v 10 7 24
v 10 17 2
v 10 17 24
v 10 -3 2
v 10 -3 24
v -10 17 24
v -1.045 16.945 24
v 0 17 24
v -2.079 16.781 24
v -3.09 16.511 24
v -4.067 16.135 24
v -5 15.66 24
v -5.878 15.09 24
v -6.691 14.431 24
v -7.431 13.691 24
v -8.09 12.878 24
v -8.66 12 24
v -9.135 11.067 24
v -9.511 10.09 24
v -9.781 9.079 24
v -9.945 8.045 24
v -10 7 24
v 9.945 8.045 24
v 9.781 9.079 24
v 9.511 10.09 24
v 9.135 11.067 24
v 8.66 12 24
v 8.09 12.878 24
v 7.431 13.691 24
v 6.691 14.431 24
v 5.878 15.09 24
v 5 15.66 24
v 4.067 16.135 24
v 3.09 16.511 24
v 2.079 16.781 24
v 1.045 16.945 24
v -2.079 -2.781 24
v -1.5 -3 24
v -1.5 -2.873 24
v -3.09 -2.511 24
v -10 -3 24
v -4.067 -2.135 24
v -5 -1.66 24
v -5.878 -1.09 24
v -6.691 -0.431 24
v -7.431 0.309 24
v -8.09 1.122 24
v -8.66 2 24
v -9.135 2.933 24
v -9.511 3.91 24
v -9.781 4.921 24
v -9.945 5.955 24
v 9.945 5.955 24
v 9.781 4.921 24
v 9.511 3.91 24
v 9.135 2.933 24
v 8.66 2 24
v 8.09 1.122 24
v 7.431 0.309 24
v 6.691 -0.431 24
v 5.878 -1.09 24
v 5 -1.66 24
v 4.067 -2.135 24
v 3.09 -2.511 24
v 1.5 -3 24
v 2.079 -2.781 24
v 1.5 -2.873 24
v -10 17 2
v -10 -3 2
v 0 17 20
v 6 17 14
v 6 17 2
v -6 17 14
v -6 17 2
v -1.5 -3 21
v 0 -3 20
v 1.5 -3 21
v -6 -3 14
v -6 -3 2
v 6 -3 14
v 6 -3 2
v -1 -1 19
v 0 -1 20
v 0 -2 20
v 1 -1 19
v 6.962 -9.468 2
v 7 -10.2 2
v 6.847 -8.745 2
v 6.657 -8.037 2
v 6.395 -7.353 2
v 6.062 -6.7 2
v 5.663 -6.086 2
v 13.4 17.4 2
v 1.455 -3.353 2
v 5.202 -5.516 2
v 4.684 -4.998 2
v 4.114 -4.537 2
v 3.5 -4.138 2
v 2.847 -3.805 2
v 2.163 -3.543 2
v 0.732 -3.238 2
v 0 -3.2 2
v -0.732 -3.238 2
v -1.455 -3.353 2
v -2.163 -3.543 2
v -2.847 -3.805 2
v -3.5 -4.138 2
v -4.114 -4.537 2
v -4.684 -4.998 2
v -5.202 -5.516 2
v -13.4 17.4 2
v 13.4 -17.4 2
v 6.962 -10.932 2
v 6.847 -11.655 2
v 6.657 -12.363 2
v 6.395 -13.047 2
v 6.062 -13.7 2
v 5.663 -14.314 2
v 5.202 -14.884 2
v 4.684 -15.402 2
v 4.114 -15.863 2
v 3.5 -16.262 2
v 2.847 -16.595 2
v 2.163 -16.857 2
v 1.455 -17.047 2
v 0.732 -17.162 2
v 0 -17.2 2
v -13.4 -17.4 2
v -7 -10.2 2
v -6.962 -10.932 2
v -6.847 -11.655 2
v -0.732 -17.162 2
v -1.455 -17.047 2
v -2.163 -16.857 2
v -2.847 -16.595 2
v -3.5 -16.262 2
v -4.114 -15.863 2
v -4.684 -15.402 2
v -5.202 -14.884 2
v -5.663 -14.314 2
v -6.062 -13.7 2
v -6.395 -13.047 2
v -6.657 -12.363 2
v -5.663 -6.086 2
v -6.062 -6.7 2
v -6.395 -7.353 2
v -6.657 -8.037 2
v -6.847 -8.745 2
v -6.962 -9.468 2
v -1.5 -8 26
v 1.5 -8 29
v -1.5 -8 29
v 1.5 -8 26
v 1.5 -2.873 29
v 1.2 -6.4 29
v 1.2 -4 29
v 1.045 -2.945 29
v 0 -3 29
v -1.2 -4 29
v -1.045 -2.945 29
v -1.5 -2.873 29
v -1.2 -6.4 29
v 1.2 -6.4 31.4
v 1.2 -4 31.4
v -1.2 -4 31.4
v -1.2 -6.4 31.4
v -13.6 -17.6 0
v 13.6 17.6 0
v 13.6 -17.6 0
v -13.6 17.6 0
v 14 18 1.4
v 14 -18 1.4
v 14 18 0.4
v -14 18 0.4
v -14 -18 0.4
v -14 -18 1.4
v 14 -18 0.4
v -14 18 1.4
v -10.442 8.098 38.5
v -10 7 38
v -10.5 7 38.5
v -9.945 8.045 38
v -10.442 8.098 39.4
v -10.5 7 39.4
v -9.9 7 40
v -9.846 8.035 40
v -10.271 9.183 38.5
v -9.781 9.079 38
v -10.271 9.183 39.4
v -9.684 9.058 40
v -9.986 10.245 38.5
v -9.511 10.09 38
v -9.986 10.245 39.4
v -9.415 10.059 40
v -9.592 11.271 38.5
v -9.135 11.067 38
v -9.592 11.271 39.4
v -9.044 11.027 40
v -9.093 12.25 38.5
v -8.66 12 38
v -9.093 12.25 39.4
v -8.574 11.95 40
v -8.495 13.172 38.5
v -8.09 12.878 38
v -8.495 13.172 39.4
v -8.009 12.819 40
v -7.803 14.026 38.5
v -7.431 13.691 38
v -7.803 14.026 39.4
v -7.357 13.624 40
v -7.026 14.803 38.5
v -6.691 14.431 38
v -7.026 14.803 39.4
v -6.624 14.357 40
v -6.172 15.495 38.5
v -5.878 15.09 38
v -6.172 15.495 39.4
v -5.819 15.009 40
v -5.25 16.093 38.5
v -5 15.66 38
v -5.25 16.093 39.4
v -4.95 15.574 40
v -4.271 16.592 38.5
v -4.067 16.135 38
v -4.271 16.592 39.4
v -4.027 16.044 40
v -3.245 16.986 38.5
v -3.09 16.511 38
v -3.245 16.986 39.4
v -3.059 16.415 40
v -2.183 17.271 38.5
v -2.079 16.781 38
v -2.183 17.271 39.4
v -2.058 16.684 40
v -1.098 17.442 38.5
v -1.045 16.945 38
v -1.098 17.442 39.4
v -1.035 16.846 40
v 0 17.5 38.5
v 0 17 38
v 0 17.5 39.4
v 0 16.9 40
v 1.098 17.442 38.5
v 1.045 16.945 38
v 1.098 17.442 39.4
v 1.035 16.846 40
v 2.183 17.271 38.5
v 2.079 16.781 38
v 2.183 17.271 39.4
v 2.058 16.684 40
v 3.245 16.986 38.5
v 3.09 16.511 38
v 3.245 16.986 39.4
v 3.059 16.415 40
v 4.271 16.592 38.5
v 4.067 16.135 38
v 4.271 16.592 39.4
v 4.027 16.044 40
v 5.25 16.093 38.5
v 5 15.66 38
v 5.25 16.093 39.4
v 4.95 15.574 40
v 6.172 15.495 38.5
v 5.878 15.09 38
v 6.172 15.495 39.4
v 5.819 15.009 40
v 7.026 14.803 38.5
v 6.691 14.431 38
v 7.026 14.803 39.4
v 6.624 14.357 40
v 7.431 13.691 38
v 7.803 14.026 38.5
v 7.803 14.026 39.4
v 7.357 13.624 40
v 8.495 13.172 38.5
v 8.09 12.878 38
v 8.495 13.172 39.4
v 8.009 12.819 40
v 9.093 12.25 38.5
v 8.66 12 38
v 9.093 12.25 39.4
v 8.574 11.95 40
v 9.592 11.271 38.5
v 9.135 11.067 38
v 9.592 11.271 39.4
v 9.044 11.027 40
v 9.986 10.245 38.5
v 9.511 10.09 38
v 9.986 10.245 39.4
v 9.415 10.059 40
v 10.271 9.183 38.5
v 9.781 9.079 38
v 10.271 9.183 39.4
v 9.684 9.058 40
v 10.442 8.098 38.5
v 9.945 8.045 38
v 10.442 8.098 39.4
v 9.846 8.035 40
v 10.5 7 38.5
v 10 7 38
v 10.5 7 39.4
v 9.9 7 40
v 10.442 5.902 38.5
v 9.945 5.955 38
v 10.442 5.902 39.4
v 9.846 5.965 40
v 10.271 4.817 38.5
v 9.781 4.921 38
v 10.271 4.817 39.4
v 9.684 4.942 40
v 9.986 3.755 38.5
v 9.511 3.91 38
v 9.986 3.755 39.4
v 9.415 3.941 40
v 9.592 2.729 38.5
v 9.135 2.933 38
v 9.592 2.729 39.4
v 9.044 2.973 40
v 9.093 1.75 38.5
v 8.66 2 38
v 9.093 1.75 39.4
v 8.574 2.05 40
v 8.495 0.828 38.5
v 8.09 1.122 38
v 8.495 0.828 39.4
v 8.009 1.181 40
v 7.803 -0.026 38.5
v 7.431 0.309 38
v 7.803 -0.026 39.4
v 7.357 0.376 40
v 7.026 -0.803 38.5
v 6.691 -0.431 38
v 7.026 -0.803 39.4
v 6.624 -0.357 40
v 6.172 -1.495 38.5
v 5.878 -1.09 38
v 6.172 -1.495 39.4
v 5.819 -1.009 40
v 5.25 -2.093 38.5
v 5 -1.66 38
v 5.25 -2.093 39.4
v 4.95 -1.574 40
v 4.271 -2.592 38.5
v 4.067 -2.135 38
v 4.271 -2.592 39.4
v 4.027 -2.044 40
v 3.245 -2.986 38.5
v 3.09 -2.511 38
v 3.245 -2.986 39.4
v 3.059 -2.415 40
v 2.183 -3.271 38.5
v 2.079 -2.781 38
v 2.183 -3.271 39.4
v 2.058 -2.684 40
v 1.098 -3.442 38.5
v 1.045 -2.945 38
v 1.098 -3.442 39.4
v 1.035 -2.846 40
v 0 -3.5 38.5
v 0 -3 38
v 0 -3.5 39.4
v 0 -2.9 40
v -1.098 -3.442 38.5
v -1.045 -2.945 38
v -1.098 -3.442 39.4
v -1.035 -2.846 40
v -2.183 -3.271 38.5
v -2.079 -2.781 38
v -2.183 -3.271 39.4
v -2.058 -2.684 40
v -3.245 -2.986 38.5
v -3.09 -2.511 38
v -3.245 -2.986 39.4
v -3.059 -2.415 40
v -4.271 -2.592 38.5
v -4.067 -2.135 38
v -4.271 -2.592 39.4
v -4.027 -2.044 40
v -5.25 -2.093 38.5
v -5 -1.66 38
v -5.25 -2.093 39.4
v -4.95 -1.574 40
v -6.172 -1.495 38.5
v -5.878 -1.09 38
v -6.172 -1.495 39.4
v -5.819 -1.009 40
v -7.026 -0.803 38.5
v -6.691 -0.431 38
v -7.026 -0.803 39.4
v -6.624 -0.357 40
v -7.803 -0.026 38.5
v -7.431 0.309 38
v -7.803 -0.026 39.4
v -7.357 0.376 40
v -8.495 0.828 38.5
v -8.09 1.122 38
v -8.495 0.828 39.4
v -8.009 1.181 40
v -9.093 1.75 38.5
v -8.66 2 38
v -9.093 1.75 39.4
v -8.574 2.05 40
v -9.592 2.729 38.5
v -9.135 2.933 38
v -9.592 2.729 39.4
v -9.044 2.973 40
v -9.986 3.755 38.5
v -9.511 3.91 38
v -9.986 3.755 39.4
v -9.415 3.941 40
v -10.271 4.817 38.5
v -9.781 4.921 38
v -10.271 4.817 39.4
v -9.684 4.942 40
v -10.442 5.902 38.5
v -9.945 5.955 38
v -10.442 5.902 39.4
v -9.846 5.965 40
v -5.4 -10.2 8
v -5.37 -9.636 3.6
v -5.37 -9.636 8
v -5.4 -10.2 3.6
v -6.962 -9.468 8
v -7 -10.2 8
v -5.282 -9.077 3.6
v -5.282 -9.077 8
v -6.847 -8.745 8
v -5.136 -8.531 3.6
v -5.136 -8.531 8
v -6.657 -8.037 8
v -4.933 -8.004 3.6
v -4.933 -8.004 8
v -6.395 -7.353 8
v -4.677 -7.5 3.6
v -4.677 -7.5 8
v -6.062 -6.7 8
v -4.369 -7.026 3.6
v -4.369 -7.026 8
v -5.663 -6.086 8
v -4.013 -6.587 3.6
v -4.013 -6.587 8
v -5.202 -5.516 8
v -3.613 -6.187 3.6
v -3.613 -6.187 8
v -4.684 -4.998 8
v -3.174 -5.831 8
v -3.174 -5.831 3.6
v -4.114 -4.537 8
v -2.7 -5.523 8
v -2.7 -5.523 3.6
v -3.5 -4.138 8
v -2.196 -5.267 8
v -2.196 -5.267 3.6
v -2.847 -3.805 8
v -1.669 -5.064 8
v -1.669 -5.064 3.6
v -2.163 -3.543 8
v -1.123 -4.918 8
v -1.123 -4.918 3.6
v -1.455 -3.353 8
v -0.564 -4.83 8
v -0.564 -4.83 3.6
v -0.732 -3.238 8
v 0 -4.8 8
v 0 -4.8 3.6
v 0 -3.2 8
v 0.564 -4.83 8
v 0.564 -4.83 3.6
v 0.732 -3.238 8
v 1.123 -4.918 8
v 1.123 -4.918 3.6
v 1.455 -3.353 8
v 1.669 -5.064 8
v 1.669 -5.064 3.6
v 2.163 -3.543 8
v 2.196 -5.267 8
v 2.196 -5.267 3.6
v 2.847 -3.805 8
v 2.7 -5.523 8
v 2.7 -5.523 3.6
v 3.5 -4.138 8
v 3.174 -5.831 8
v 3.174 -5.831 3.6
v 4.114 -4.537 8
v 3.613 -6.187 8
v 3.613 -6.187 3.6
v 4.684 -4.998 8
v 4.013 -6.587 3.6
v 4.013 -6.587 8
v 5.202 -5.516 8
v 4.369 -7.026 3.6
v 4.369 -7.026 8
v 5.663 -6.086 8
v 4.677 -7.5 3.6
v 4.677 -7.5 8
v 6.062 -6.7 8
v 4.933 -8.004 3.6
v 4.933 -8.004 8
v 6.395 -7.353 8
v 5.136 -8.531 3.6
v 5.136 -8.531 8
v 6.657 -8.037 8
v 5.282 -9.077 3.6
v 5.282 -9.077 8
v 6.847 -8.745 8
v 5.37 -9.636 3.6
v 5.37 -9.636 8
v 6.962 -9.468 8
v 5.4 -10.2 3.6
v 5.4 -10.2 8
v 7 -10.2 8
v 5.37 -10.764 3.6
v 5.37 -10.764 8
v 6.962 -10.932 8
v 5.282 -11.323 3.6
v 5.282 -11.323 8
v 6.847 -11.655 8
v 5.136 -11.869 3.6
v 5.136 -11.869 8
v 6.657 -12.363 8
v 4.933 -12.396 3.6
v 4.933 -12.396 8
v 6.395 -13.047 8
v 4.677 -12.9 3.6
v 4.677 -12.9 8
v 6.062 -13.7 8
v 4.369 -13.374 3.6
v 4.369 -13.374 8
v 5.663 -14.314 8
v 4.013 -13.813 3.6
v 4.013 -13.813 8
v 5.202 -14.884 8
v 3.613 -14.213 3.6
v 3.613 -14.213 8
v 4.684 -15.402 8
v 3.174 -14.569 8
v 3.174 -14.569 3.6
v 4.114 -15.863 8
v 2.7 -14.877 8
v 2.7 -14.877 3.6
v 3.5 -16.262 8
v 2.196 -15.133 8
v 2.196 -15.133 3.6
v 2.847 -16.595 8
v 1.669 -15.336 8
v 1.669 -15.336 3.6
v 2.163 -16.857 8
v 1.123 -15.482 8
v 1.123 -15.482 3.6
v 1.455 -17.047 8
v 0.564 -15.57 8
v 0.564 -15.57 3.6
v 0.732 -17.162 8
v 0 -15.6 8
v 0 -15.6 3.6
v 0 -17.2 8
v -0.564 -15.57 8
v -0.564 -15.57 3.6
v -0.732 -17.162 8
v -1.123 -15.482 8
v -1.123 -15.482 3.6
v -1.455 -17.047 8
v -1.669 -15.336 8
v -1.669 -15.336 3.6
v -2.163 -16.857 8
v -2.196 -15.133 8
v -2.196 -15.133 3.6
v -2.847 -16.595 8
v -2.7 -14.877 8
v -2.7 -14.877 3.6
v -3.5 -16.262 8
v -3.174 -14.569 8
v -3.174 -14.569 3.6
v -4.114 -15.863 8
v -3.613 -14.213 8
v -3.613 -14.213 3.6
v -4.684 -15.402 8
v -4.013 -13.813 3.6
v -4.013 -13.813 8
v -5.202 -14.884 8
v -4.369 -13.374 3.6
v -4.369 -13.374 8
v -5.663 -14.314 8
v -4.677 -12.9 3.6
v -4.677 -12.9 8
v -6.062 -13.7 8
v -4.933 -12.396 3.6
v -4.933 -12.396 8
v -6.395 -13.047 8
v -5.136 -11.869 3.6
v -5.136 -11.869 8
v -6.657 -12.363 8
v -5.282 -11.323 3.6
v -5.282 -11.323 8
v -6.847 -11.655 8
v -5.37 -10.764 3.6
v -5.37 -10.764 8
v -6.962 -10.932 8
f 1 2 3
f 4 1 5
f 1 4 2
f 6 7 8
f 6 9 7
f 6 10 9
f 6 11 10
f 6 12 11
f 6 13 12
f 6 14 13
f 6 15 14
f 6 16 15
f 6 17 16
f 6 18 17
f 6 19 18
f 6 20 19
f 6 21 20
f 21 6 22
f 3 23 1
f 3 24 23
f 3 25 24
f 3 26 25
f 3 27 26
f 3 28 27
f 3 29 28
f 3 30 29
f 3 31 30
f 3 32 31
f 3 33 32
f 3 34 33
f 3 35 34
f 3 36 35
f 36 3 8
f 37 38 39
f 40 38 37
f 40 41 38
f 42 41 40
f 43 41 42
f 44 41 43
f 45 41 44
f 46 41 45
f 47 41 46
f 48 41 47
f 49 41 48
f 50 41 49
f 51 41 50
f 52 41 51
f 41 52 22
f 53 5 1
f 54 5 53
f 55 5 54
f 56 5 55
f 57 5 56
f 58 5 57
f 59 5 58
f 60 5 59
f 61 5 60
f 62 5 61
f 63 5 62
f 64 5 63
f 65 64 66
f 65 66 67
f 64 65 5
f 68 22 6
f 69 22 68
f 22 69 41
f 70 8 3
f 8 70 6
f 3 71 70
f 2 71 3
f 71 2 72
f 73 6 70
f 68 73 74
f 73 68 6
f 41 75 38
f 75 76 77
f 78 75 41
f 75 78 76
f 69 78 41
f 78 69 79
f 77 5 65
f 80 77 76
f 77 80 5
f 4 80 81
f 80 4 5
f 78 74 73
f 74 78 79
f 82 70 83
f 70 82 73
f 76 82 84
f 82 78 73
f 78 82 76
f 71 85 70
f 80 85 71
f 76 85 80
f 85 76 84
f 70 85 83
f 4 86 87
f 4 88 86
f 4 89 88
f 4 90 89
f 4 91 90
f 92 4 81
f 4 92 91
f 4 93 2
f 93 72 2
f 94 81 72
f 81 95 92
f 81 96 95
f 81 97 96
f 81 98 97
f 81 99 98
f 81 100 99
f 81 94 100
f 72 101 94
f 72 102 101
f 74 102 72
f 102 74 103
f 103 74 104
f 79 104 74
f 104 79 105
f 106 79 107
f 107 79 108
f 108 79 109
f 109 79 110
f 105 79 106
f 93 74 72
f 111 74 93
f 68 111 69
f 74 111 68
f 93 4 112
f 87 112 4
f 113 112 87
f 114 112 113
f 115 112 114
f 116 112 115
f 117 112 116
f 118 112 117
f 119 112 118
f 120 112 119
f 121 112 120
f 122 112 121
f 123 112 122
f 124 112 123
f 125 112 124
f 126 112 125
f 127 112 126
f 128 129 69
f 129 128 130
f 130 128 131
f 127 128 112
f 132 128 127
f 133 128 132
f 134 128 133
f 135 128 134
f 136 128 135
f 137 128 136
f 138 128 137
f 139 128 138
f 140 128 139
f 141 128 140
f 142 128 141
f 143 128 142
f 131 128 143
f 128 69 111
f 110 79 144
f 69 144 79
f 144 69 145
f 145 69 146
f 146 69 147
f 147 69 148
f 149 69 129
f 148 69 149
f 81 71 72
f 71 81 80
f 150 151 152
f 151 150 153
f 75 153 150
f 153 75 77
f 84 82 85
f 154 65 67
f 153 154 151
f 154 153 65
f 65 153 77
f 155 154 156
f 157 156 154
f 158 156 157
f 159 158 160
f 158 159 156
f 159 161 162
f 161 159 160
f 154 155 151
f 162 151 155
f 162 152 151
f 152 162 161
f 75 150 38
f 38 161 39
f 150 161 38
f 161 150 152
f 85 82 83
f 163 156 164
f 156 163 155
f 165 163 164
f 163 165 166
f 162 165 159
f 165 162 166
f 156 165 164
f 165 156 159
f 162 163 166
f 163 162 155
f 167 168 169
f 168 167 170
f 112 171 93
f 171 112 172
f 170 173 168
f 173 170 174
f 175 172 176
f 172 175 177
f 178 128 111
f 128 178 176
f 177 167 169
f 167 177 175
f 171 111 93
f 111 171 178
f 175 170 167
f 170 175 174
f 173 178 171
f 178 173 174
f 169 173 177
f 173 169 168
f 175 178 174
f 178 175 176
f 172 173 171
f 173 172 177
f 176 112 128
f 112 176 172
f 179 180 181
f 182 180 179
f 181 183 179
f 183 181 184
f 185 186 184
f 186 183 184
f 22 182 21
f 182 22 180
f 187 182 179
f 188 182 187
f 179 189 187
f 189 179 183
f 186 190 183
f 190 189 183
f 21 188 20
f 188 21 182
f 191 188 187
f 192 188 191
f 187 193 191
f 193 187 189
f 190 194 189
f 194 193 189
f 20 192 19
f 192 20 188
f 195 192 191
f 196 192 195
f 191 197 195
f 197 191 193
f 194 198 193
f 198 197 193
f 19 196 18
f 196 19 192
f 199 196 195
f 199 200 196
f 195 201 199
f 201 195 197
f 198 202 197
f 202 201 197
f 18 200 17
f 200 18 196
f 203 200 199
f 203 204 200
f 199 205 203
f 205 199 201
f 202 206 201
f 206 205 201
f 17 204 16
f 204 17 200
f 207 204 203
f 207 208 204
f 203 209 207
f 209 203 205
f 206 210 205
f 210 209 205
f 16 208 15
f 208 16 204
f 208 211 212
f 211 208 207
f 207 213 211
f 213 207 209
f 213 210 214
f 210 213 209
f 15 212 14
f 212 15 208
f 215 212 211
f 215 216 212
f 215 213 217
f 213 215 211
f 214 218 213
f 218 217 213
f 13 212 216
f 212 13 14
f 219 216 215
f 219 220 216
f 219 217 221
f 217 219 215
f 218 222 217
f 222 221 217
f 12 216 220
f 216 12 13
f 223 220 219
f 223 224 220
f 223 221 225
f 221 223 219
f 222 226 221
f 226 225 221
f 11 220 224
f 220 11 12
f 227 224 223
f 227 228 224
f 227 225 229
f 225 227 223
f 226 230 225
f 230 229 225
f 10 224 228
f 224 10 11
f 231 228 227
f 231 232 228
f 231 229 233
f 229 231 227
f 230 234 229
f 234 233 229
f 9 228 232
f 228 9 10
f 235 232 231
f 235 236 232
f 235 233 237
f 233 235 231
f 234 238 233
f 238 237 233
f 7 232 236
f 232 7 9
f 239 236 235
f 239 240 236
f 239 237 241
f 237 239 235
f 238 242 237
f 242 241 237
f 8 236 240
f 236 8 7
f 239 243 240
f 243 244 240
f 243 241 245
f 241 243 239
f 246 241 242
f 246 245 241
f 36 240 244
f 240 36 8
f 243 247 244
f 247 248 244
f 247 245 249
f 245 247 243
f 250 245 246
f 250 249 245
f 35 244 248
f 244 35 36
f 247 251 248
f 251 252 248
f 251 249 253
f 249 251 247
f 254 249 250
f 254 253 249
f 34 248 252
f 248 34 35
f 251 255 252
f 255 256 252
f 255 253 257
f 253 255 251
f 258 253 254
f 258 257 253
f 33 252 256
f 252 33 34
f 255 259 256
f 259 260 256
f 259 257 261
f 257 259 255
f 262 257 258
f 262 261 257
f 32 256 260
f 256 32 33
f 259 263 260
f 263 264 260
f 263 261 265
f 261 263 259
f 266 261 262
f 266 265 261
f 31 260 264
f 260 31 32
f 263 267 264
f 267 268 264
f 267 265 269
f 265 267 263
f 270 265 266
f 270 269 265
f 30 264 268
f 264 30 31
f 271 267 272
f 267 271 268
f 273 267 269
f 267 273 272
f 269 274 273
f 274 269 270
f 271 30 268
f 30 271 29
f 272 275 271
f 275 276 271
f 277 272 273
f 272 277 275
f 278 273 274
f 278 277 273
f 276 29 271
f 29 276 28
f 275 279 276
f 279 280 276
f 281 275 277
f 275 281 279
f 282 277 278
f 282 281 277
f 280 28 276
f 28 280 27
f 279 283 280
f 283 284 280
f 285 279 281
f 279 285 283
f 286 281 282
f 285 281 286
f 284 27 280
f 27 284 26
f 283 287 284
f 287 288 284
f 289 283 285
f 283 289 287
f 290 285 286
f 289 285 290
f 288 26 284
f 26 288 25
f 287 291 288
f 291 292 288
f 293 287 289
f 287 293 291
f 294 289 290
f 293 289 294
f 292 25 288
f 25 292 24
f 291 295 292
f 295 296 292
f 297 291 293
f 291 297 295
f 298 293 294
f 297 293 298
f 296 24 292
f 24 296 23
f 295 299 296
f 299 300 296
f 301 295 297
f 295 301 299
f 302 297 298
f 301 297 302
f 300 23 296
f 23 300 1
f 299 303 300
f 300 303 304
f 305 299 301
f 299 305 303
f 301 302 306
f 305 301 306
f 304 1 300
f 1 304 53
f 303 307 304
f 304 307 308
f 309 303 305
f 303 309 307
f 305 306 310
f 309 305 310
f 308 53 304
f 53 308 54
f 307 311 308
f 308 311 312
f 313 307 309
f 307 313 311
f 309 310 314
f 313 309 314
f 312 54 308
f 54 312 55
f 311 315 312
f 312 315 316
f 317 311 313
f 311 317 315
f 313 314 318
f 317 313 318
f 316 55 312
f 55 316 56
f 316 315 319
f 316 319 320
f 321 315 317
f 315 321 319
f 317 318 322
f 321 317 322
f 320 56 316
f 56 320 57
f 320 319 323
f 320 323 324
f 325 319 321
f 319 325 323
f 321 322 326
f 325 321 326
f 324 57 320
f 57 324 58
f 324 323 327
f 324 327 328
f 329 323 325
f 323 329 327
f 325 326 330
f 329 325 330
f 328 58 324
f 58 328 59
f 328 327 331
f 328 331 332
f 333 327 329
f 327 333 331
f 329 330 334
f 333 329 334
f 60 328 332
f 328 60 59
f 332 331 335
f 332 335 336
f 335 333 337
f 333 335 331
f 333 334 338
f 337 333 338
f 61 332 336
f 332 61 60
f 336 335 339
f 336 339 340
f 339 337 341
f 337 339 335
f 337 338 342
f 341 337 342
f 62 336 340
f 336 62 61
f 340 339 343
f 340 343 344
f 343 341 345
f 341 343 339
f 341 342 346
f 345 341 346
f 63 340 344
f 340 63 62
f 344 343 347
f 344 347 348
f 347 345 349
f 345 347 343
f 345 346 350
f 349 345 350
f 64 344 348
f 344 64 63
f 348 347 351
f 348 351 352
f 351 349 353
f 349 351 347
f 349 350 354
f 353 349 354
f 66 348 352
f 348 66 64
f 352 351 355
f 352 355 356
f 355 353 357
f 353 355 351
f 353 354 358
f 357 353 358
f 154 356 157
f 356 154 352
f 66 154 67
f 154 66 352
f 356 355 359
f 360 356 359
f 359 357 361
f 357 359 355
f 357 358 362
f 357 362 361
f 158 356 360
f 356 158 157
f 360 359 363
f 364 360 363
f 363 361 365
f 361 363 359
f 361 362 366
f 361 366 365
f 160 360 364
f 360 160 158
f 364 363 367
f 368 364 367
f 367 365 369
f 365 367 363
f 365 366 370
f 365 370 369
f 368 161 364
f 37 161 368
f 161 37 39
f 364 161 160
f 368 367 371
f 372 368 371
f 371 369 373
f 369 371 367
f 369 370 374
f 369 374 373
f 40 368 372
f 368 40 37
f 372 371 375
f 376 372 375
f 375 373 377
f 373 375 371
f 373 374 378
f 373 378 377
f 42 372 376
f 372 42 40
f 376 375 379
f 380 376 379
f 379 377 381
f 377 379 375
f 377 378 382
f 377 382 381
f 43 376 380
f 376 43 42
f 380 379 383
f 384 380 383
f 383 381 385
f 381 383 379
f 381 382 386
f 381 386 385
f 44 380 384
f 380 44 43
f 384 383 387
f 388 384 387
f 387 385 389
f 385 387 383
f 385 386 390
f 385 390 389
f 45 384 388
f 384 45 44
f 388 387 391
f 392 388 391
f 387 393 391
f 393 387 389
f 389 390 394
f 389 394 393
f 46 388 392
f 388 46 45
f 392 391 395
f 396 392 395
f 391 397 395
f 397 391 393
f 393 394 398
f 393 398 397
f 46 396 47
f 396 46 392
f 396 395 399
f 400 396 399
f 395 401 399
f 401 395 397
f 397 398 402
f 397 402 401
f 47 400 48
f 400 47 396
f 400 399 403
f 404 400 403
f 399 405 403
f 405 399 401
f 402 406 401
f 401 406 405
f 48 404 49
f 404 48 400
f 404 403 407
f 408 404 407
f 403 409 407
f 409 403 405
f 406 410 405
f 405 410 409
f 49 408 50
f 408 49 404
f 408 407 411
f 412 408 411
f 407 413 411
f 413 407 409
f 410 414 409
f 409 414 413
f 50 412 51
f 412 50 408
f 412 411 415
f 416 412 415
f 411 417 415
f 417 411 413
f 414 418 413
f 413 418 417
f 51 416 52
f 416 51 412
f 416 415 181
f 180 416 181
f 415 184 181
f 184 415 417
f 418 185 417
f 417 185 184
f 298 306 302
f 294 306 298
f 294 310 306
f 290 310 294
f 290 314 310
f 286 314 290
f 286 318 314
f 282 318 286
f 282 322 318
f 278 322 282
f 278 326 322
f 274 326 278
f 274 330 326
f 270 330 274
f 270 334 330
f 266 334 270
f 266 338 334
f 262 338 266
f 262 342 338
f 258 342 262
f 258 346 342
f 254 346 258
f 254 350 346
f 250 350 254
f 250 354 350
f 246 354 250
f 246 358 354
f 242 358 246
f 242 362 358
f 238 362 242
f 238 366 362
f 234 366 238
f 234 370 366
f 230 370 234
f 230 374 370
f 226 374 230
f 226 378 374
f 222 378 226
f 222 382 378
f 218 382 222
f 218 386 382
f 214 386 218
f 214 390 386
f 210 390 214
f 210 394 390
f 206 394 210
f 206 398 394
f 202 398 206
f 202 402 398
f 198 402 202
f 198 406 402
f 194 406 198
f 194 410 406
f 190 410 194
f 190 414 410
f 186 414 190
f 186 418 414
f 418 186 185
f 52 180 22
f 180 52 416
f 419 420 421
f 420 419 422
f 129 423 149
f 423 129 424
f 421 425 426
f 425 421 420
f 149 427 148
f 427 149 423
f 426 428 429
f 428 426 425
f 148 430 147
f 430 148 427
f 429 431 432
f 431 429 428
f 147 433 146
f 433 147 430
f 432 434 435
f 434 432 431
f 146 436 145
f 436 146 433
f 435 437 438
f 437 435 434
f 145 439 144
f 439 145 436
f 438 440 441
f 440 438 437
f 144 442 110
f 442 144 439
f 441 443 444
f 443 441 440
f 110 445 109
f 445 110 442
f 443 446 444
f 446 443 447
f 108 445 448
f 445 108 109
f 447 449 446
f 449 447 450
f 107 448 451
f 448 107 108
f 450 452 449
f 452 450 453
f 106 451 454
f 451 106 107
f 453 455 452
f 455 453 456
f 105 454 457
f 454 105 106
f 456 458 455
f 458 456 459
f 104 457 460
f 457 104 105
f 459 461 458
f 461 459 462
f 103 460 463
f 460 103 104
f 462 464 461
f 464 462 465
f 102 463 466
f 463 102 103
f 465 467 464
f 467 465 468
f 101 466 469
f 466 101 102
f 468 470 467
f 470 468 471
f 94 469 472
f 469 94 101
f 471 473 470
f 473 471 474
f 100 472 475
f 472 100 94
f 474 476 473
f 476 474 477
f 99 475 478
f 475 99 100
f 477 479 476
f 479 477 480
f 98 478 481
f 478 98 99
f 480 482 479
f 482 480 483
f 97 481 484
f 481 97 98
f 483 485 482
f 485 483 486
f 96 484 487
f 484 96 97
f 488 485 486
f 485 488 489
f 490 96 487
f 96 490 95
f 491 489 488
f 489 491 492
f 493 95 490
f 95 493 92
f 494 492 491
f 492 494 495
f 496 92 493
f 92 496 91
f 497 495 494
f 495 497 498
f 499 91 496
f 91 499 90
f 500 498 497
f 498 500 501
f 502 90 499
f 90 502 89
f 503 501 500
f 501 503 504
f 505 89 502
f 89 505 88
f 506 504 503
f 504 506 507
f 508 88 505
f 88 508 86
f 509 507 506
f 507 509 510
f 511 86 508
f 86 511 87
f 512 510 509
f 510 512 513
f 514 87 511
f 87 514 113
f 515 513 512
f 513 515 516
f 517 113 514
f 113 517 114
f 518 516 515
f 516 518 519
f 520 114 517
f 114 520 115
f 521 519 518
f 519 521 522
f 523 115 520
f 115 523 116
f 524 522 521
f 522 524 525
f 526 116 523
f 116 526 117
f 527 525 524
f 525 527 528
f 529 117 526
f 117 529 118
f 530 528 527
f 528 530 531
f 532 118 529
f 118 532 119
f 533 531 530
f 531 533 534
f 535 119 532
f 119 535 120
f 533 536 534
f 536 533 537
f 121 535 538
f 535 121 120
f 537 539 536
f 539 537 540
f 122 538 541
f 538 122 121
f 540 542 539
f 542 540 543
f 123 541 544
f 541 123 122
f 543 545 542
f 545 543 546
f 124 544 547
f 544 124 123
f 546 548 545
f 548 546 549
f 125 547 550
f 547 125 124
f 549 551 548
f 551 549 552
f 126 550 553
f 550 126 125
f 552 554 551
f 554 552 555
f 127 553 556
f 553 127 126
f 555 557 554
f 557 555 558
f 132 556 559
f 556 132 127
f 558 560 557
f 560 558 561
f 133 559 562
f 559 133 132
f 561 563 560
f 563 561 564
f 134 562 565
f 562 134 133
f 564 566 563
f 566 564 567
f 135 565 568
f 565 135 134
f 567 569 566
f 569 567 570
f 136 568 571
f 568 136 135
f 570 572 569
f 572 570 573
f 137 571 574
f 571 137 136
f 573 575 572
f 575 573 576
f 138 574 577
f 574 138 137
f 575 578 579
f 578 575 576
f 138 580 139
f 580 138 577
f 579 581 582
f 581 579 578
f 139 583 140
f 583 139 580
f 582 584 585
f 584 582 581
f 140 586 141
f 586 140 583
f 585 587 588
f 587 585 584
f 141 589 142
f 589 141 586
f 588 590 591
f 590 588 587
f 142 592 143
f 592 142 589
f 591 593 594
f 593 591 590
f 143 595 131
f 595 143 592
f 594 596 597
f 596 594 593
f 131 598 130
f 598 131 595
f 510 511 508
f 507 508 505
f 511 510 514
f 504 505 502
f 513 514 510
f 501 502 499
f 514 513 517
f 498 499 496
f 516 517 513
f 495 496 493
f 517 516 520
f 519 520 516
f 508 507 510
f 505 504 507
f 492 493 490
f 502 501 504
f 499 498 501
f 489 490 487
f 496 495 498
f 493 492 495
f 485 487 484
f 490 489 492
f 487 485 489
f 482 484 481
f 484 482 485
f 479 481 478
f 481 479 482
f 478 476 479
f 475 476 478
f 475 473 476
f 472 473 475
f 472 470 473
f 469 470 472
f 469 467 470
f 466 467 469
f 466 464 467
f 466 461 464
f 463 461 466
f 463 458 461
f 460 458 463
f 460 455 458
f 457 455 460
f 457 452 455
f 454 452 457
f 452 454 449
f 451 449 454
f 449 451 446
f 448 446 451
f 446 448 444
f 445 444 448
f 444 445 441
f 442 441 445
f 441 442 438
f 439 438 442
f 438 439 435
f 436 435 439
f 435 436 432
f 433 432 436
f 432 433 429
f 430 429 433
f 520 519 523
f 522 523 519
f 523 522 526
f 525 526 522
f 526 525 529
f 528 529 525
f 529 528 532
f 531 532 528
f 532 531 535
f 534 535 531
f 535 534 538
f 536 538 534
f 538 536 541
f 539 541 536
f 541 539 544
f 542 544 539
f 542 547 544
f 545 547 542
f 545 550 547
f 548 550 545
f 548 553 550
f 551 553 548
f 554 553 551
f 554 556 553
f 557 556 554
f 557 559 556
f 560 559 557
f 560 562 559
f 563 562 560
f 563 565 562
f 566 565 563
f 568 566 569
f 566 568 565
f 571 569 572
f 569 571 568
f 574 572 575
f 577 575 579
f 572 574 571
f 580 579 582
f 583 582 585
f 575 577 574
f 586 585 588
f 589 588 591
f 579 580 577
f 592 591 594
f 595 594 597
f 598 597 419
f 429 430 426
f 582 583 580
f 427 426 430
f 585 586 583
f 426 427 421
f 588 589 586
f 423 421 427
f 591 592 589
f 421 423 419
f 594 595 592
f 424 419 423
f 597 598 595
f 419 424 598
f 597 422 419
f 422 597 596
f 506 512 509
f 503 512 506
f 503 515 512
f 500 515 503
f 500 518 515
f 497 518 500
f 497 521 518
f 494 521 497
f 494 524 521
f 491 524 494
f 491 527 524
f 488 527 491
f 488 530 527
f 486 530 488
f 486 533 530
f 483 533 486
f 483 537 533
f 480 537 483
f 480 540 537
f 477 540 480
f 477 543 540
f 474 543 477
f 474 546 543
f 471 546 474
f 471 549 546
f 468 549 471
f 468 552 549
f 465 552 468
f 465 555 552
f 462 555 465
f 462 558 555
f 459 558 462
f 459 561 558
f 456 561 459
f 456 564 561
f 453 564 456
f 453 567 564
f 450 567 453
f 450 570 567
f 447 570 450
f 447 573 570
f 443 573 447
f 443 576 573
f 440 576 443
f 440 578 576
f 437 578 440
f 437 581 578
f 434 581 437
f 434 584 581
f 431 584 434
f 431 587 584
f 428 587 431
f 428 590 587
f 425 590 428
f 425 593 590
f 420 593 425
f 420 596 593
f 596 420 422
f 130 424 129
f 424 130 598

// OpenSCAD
// file: bucket_lib.scad
// bucket_lib.scad - bucket shapes shared by the hand washing point (design_brief.md 4.9)
// and the mop bucket (4.11); the waste bin (4.7) uses the closed form too.
// Load from a model with:  use <bucket_lib.scad>
// The modules read their shared values from common.scad themselves.
include <common.scad>

function bucket_r(rb, rt, h, z) = rb + (rt - rb) * z / h;   // outer radius at height z

// Body of revolution, base on z = 0, centred on the z axis.
//   d_bottom, d_top   outer diameters at the base and at height h; different values taper
//   wall, floor_t     > 0: open bucket with this wall and floor; 0: solid body
//   lid_h, lip        > 0: closed top with a lid lid_h high, overhanging by lip on a 45 deg underside
//   cb                bottom chamfer; 0 when the bucket stands on another part
//   ct                top chamfer of the lid or of a solid body; an open rim gets none
module bucket(d_bottom, d_top, h, wall = 0, floor_t = 0, lid_h = 0, lip = 0, cb = chamfer_bottom, ct = 0) {
    rb = d_bottom / 2;
    rt = d_top / 2;
    base = concat([[0, 0]], cb > 0 ? [[rb - cb, 0], [rb, cb]] : [[rb, 0]]);
    top = lid_h > 0 ?
              concat([[rt, h]], lip > 0 ? [[rt + lip, h + lip]] : [],
                     ct > 0 ? [[rt + lip, h + lid_h - ct], [rt + lip - ct, h + lid_h]] : [[rt + lip, h + lid_h]],
                     [[0, h + lid_h]]) :
          wall > 0 ?
              [[rt, h], [rt - wall, h], [bucket_r(rb, rt, h, floor_t) - wall, floor_t], [0, floor_t]] :
          ct > 0 ?
              [[rt, h - ct], [rt - ct, h], [0, h]] :
              [[rt, h], [0, h]];
    rotate_extrude() polygon(concat(base, top));
}

// Lug on the outside wall at +x: w wide, reaching out beyond the wall, h high with its top at
// z_top, underside at 45 deg. r_wall is the outer radius at z_top; the lug continues inset
// into the wall (and further down at 45 deg) so it merges with a tapered wall.
module bucket_lug(r_wall, z_top, w = 4, out = min_handled, h = 3, inset = 1)
    rotate([90, 0, 0]) linear_extrude(height = w, center = true)
        polygon([[r_wall - inset, z_top - h - out - inset], [r_wall + out, z_top - h],
                 [r_wall + out, z_top], [r_wall - inset, z_top]]);
// main file
// hand_washing_point.scad - field hand washing station (design_brief.md 4.9): water bucket
// with a tap on an arched stand, catch basin in front. Base plate 28 x 36 x 2, stand
// 20 x 20 to Z 24 with a pointed arch (12 wide, sides to 14, roof to 20), bucket dia 20 x 14
// with a 2 mm lid and 0.5 lip (top at 40), tap 3 x 3 reaching 5 forward with a 45 deg wedge
// underneath and a 2.4 handle, basin dia 14 x 6 with a 1.6 wall. Front is -y.
// Single colour, prints upright.   Export: openscad -o hand_washing_point.stl hand_washing_point.scad
include <common.scad>
use <bucket_lib.scad>

base        = [28, 36];
plate_t     = 2;
plate_top_chamfer = 0.6;
hw_stand    = [20, 20];   // this station's own stand, not the universal stand
stand_top   = 24;
stand_back  = 1;            // stand set 1 mm from the back edge so the lid lip stays on the plate
arch_w      = 12;
arch_side   = 14;           // top of the vertical sides
arch_apex   = 20;           // 45 deg roof meets here; top bar 20-24
bucket_d    = 20;
bucket_h    = 14;
lid_h       = 2;
lip         = 0.5;
lid_chamfer = 0.6;
tap_z       = 26;           // underside of the spout
tap         = 3;            // spout section
tap_reach   = 5;
handle      = min_handled;  // 2.4 mm handle block on the spout
basin_d     = 14;
basin_h     = 6;
basin_wall  = min_wall;
basin_floor = min_wall;   // 1.6
basin_gap   = 0.2;          // between basin and stand
root        = 0.5;          // parts standing on the plate or stand reach this far into it

stand_y = base[1] / 2 - stand_back - hw_stand[1] / 2;    // 7, stand centre
front_y = stand_y - hw_stand[1] / 2;                     // -3, front face of stand and bucket
basin_y = front_y - basin_gap - basin_d / 2;               // -10.2

module stand() difference() {
    translate([-hw_stand[0] / 2, stand_y - hw_stand[1] / 2, plate_t - root])
        cube([hw_stand[0], hw_stand[1], stand_top - plate_t + root]);
    // pointed arch through the stand, front to back, floor on the plate
    translate([0, stand_y, 0]) rotate([90, 0, 0]) linear_extrude(height = hw_stand[1] + 2, center = true)
        polygon([[-arch_w / 2, plate_t], [arch_w / 2, plate_t], [arch_w / 2, arch_side], [0, arch_apex], [-arch_w / 2, arch_side]]);
}

module tap() {
    tip = front_y - tap_reach;
    rotate([90, 0, 90]) linear_extrude(height = tap, center = true)
        polygon([[tip, tap_z], [tip, tap_z + tap], [front_y + 2, tap_z + tap], [front_y + 2, tap_z - tap_reach - 2]]);
    translate([-handle / 2, front_y - handle - 1, tap_z + tap]) cube([handle, handle, handle]);
}

module basin() translate([0, basin_y, plate_t - root]) rotate_extrude()
    polygon([[0, 0], [basin_d / 2, 0], [basin_d / 2, basin_h + root], [basin_d / 2 - basin_wall, basin_h + root],
             [basin_d / 2 - basin_wall, basin_floor + root], [0, basin_floor + root]]);

module hand_washing_point() band_colour(1) {
    chamfered_box([base[0], base[1], plate_t], cb = chamfer_bottom, ct = plate_top_chamfer);
    stand();
    translate([0, stand_y, stand_top - root])
        bucket(bucket_d, bucket_d, bucket_h + root, lid_h = lid_h, lip = lip, cb = 0, ct = lid_chamfer);
    tap();
    basin();
}

hand_washing_point();
